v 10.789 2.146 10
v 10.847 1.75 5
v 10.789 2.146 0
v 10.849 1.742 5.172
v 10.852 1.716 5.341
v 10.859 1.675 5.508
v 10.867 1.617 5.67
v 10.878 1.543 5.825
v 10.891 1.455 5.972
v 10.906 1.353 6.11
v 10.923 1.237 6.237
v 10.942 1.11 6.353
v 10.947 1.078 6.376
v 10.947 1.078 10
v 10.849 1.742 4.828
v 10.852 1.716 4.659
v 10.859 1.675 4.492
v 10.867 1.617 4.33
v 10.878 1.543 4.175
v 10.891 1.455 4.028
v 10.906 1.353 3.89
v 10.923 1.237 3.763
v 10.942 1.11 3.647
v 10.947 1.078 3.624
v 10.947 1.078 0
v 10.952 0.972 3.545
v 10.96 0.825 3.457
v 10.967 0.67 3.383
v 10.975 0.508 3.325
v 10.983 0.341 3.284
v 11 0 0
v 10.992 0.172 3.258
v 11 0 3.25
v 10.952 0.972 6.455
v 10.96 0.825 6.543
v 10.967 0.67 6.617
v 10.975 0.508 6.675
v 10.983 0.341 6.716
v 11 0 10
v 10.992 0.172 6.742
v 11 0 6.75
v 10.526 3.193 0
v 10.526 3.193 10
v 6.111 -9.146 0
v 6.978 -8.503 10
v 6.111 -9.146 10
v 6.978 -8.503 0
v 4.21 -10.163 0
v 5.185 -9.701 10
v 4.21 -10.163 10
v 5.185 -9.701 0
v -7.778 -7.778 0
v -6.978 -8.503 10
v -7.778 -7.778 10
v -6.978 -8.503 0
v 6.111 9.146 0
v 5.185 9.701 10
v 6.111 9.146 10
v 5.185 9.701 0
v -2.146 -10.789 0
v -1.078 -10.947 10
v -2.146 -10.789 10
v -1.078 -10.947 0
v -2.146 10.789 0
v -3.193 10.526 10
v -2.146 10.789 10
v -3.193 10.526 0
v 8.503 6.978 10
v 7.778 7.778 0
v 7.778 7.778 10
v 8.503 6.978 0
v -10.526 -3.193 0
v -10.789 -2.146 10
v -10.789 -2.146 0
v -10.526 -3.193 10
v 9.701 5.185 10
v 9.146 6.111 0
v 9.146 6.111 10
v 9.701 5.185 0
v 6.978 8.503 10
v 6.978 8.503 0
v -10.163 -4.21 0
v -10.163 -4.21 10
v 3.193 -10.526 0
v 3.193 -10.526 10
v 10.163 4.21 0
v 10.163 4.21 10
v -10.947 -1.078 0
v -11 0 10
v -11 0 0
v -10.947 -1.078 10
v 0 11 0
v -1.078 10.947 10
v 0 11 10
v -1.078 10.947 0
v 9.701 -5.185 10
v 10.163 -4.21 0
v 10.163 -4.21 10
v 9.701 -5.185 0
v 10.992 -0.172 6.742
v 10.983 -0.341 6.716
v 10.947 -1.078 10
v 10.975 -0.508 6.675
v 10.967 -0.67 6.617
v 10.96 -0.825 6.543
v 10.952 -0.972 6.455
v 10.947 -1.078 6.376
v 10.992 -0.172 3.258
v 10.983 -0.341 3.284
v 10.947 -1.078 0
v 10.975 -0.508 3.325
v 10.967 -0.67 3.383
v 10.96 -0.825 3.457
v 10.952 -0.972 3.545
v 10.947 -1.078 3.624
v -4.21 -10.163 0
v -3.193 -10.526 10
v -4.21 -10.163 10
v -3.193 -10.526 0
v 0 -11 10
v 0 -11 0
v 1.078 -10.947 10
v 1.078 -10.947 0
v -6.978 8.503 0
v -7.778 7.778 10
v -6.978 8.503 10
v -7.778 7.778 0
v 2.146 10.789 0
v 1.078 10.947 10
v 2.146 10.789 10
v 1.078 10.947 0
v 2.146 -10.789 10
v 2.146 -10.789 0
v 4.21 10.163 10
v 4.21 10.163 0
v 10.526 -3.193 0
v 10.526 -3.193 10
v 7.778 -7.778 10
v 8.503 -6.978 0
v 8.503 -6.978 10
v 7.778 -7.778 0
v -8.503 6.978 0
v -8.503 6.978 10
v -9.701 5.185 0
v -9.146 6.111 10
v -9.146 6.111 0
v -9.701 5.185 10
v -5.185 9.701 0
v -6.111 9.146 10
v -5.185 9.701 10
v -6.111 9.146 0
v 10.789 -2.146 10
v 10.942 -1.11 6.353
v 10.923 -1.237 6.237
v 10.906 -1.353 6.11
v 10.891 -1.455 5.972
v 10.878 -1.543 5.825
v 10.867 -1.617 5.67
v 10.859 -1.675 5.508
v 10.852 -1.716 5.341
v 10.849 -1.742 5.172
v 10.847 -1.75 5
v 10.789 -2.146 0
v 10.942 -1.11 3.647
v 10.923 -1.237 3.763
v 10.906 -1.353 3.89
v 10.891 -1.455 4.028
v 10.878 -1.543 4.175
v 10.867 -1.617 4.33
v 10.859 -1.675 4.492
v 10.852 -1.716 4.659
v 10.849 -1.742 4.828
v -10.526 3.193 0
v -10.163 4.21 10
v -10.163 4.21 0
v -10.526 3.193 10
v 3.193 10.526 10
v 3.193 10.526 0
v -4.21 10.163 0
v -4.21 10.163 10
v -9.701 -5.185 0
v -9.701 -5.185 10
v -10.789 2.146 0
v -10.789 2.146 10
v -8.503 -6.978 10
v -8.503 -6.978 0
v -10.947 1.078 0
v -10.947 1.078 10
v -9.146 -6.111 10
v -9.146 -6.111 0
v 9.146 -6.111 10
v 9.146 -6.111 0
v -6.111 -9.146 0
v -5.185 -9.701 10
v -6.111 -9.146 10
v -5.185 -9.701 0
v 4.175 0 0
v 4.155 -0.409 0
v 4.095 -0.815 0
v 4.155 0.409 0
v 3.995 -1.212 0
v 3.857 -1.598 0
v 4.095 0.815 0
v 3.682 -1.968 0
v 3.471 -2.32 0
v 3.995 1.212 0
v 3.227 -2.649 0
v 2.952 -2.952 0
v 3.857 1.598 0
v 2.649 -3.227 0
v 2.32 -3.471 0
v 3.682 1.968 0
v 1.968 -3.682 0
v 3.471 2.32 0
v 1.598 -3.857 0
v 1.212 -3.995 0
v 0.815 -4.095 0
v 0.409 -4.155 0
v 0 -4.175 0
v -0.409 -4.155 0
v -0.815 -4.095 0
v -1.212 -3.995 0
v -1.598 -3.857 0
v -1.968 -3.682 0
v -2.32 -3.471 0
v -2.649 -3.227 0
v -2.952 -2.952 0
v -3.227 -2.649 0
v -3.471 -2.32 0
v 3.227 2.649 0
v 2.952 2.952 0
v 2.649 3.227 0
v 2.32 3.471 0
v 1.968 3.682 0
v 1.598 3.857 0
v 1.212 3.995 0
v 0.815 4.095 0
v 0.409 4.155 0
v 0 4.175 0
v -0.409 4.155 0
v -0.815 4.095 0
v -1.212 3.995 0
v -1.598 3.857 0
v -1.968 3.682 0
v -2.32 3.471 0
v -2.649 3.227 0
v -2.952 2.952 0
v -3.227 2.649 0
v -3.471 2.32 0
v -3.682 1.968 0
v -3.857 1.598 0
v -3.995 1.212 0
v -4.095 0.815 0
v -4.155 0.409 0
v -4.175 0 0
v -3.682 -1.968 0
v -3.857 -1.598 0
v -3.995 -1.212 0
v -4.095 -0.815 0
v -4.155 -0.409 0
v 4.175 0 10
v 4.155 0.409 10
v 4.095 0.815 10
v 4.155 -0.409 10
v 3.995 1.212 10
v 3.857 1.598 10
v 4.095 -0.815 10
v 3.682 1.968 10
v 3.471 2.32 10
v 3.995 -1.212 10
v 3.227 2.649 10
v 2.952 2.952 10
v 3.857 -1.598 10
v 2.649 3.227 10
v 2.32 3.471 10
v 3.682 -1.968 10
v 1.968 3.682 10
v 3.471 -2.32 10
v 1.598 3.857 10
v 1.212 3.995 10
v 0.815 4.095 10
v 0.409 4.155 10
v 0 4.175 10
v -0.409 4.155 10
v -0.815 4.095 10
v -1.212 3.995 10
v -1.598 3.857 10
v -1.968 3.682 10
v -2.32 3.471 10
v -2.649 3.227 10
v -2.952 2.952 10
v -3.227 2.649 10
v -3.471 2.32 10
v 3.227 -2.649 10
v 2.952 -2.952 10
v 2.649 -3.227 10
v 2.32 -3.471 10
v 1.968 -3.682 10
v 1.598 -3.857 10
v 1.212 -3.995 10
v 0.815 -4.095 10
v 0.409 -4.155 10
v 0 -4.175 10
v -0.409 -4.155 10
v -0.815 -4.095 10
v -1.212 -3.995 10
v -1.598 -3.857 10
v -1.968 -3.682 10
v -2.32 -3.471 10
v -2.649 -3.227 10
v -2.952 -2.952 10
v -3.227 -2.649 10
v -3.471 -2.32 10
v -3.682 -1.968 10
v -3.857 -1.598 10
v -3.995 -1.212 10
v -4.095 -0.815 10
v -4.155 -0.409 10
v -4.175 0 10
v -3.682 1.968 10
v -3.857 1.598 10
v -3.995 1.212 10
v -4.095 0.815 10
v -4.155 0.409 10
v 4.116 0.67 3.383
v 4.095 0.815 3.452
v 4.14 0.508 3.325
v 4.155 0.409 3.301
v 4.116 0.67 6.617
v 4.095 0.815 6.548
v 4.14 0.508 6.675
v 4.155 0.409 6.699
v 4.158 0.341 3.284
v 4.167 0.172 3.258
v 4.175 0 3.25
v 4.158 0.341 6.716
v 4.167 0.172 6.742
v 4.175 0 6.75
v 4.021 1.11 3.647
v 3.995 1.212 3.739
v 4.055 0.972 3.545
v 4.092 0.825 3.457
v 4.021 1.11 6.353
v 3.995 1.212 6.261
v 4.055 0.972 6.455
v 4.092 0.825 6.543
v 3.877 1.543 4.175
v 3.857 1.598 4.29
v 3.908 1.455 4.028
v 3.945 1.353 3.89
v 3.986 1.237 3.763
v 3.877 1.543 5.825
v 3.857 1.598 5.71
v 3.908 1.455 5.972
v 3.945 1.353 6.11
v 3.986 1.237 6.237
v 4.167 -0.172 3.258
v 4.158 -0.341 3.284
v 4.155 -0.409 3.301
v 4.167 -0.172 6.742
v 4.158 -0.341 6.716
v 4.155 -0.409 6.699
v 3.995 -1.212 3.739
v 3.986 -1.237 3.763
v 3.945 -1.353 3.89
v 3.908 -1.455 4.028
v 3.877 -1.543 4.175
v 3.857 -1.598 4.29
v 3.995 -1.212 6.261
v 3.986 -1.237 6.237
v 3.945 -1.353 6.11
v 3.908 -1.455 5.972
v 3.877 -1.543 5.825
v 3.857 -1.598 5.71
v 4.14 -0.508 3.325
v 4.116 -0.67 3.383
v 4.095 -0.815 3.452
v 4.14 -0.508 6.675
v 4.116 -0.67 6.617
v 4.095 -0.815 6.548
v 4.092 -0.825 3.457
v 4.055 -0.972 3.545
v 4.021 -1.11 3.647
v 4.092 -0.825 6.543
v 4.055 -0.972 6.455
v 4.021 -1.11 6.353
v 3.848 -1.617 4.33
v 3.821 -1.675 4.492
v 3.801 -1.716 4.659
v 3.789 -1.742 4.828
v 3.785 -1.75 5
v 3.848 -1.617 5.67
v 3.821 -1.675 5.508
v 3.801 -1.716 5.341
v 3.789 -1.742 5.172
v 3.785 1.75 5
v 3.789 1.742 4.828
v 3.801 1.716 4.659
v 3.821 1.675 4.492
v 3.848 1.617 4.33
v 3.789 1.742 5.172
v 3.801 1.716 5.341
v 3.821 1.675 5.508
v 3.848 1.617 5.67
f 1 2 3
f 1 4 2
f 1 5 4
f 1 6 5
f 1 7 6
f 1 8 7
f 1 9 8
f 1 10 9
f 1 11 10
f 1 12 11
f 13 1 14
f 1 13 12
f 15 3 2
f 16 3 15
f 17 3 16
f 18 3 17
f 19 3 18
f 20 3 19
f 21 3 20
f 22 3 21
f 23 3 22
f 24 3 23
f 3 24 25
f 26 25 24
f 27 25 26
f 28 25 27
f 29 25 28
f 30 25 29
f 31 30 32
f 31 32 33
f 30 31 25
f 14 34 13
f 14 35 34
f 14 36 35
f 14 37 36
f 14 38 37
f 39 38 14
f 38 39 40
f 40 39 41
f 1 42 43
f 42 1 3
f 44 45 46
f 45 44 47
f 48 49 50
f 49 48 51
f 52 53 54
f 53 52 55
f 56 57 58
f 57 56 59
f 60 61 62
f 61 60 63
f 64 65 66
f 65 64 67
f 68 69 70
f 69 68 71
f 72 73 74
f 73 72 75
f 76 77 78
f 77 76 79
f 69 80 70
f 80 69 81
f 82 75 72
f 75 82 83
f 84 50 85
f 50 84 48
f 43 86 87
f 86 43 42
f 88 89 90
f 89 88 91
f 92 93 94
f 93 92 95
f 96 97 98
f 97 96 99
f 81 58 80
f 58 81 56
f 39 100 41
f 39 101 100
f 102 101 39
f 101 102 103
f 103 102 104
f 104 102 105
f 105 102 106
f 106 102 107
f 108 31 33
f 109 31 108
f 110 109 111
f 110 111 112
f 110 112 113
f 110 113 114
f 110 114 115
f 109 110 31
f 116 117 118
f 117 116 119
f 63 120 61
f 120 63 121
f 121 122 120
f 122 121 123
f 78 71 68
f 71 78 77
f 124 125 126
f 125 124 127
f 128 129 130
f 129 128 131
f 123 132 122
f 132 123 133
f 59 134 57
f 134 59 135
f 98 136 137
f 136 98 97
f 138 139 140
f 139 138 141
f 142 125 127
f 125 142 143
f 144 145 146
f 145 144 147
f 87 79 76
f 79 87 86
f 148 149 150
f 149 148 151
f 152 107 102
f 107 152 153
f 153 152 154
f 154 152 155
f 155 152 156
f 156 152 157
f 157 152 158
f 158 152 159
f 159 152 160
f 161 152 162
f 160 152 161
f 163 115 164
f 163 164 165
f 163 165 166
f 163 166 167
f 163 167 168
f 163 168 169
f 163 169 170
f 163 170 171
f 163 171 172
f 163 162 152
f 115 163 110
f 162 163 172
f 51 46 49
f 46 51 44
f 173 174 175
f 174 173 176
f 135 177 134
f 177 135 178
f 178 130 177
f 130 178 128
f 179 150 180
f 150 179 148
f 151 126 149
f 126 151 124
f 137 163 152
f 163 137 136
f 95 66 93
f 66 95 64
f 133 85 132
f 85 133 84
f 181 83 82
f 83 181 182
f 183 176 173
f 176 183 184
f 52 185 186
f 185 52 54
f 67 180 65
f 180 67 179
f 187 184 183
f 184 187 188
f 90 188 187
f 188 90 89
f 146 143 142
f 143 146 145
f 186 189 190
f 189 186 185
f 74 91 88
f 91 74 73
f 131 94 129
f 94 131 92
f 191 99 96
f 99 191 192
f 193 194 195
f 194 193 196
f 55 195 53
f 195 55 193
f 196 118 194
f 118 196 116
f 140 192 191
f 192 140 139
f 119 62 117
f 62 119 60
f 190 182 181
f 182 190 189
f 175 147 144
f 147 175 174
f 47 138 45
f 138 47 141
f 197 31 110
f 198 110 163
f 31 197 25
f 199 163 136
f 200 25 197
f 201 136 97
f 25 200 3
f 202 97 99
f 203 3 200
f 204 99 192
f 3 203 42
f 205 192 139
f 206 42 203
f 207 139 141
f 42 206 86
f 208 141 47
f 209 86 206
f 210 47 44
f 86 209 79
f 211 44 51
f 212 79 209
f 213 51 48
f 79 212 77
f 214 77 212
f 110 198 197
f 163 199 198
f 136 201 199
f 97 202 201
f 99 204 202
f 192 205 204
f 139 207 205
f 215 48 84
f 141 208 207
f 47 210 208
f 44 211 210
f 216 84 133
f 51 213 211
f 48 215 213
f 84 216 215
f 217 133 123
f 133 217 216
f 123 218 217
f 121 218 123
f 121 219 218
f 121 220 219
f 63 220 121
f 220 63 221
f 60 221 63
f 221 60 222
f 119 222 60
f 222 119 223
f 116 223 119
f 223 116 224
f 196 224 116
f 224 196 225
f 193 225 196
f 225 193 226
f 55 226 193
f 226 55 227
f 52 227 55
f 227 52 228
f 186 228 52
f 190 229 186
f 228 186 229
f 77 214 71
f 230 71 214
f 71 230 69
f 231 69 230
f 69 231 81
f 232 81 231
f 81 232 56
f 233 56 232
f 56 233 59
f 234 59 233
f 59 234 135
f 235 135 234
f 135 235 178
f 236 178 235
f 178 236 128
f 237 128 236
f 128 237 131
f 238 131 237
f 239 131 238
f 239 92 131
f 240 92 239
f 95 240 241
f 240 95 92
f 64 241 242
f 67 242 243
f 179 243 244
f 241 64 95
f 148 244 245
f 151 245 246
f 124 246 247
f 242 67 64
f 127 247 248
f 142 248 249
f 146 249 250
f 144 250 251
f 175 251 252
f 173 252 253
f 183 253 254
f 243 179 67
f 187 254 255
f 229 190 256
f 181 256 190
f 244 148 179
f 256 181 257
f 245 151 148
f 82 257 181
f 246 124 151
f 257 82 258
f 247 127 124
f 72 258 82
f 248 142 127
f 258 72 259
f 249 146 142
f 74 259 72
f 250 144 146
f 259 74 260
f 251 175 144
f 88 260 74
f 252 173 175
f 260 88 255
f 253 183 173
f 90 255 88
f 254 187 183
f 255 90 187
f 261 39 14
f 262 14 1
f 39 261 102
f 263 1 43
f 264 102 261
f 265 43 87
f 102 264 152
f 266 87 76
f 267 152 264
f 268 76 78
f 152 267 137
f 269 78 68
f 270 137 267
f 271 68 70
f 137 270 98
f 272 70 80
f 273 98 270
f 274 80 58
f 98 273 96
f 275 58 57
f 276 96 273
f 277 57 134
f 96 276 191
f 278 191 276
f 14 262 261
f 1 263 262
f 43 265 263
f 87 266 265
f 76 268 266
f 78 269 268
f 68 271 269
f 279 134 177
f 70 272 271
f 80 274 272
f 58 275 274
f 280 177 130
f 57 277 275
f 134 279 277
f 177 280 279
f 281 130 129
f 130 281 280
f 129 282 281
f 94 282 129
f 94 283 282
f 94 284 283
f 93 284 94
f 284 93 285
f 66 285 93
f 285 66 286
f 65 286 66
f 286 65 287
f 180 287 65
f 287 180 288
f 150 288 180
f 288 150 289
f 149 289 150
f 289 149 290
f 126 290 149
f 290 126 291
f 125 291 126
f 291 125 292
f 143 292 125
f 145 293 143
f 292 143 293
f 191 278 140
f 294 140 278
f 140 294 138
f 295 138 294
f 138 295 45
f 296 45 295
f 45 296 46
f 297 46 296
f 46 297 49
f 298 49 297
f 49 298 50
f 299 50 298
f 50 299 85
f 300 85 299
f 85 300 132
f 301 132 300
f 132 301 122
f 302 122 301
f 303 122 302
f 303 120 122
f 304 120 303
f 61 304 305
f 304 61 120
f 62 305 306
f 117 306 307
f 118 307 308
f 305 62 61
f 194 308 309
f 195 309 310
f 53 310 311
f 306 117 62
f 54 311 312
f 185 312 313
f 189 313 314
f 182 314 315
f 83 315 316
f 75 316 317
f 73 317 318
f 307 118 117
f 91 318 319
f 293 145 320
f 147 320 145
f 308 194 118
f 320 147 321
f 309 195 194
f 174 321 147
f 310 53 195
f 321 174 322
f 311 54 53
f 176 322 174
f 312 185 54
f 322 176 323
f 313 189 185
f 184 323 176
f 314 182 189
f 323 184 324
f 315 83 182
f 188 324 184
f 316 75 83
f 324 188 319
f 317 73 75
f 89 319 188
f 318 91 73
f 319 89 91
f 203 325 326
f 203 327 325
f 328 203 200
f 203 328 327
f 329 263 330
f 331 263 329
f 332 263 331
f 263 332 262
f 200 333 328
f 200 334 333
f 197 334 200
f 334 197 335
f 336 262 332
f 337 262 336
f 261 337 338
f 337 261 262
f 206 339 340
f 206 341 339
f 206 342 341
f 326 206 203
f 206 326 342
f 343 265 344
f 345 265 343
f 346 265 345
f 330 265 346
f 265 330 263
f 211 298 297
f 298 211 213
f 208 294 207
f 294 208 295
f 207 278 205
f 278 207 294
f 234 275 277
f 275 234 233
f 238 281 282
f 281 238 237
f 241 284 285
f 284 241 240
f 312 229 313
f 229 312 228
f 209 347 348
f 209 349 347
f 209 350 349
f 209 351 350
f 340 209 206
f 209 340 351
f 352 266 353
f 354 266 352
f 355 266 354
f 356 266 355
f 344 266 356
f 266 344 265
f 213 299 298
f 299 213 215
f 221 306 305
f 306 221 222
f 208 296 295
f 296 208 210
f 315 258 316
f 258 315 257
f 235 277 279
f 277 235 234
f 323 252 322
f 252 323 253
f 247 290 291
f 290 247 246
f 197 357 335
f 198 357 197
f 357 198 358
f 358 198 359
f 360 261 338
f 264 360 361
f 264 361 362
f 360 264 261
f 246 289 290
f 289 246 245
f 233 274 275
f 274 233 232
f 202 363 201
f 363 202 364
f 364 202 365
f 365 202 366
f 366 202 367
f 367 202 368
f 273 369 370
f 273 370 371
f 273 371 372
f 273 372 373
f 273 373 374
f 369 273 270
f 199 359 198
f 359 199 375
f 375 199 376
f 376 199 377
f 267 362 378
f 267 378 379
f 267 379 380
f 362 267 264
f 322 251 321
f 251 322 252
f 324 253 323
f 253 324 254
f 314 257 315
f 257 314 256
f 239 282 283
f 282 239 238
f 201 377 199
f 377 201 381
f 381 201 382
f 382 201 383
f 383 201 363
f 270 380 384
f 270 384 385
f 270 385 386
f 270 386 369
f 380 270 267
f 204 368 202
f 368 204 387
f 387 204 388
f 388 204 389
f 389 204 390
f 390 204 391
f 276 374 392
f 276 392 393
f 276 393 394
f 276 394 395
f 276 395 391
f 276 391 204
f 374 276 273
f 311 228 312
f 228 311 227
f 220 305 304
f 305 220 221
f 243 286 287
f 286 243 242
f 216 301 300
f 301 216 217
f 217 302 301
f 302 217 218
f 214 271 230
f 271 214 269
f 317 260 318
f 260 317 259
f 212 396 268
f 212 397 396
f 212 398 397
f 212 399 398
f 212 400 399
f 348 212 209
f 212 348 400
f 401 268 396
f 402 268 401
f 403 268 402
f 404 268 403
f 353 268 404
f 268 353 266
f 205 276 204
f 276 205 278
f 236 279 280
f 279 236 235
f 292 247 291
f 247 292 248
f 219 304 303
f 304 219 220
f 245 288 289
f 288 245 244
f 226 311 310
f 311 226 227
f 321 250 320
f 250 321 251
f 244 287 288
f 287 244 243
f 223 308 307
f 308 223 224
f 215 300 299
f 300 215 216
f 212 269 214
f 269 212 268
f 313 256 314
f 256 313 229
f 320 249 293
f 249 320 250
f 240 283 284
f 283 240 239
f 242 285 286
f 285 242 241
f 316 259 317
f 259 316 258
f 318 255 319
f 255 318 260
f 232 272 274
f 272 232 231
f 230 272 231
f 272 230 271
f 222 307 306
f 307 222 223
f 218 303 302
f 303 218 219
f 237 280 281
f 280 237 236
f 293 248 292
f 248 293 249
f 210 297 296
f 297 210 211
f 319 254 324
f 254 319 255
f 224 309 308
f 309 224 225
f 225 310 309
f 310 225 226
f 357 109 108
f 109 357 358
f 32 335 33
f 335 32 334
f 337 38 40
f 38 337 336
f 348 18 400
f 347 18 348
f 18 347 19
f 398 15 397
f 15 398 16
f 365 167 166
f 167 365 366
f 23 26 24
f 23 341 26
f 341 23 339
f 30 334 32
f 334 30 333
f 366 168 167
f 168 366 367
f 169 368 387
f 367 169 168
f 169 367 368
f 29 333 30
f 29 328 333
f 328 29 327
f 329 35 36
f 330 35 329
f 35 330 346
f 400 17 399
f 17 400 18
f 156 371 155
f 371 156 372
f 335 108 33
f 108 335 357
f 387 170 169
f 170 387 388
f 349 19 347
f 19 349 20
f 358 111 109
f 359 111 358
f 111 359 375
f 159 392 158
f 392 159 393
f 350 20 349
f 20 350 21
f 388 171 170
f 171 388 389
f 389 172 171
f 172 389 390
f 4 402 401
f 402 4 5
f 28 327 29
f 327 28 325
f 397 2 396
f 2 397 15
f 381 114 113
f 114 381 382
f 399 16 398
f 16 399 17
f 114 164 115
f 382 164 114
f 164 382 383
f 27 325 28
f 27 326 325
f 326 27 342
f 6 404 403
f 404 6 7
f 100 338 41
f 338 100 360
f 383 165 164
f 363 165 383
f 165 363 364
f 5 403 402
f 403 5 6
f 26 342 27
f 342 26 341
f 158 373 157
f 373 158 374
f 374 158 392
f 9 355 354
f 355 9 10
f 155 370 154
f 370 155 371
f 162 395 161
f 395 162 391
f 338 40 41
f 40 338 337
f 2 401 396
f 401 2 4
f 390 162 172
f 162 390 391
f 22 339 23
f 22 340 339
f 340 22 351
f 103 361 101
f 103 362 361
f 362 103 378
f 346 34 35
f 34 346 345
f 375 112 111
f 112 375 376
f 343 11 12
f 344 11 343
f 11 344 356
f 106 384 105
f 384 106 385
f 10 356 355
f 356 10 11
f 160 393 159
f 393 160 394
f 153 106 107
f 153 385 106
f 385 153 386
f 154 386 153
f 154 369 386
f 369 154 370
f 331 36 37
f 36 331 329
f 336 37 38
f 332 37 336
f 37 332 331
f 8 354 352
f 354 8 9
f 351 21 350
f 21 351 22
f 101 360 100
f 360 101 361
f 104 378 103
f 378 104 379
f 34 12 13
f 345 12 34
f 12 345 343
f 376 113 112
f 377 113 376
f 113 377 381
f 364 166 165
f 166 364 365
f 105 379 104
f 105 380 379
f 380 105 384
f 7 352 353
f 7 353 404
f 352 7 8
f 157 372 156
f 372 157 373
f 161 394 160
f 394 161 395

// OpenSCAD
// file: parameters.scad
// =============================================================================
// Gen-AB Dual-rotor ULTRA-MICRO-GAP copper-max AFPM — WOUND-AWARE (HARD GATE)
// PRIMARY challenger vs Gen-Y. Thinner m2m + larger copper window + 160 t.
// =============================================================================

// --- Wire / wind budget (26 AWG, ~1 lb spool ≈ 390 m bare-equiv) --------------
wire_awg            = 26;
wire_od             = 0.45;     // insulated OD mm
turns               = 160;      // +10 vs Gen-Y 150
fill                = 0.70;
layers_per_face     = 2;        // axial layers proud of EACH flange
wind_build_axial    = layers_per_face * wire_od * fill;   // 0.63 mm
wind_build_radial   = 3 * wire_od * fill;                 // 0.945 mm

// --- Pancake former (bare STL) — thinner web/flange than Gen-Y ---------------
coil_id_r           = 20.0;     // larger copper window vs Gen-Y 21–60
coil_od_r           = 62.0;
span_deg            = 26.0;     // 12 stations × 30° pitch
former_web          = 1.6;      // print-safe min
flange_t            = 0.60;     // print-safe min (≥0.6)
wall                = 1.2;
slot_w              = 2.4;
mount_hole          = 3.5;
tab_len             = 7.0;

former_bare_h       = former_web + 2 * flange_t;            // 2.8 mm
coil_envelope_h     = former_bare_h + 2 * wind_build_axial; // 4.06 mm

// --- Running clearance (magnet face → WOUND face) EACH side ------------------
run_clear           = 0.58;     // PASS ≥ 0.5 (prefer ≥0.65; ultra-micro 0.55–0.60 band)
gap_spacer_h        = run_clear + wind_build_axial;         // 1.21 mm
m2m                 = coil_envelope_h + 2 * run_clear;      // 5.22 mm (beats Gen-Y 5.76)

// --- Mid stator (12 pancakes 3φ; winds proud both faces) ---------------------
coil_stations       = 12;
bay_r_in            = coil_id_r - 2.0 - wind_build_radial;
bay_r_out           = coil_od_r + 2.0 + wind_build_radial;
bay_span            = span_deg + 4.0;
bay_offset          = 2.0;
stator_thick        = former_bare_h;                        // winds proud ±Z
stator_od           = 156.0;
shaft_clear_stator  = 36.0;
coil_mount_r        = 28.0;

// --- Rotors (×2) — 8×Ø20 + 24×Ø5 Halbach each face ---------------------------
large_pocket_d      = 20.3;
small_pocket_d      = 5.3;
pocket_h            = 5.2;
large_n             = 8;
R_large             = 52.0;
R_small_inner       = 40.0;
R_small_mid         = 52.0;
R_small_outer       = 64.0;
carrier_od          = 152.0;
carrier_thick       = 7.5;
hub_h               = 10.0;
hub_od              = 30.0;
rotor_b_offset_deg  = 22.5;

// --- Modular MAX interface (Gen-E family) ------------------------------------
shaft_bore          = 8.35;
bearing_d           = 21.85;
bearing_h           = 7.2;
m3_clear            = 3.5;
bolt_r_inner        = 36.0;
bolt_n_inner        = 6;
flange_bolt_r       = 72.0;
flange_bolt_n       = 6;
brace_r             = 68.0;
brace_d             = 4.3;
brace_n             = 4;

spacer_pad_od       = 14.0;
spacer_pad_id       = m3_clear;
endbell_od          = 156.0;
endbell_thick       = 8.0;
endbell_shaft_clear = 10.0;

$fn = 64;
// main file
// Gen-AB shaft collar — print ×2–4
include <parameters.scad>;
$fn = 64;
od = 22; id = shaft_bore; h = 10; set_d = 3.5;
difference() {
    cylinder(d=od, h=h);
    translate([0, 0, -0.1]) cylinder(d=id, h=h + 0.2);
    translate([0, 0, h/2]) rotate([0, 90, 0]) cylinder(d=set_d, h=od);
}
